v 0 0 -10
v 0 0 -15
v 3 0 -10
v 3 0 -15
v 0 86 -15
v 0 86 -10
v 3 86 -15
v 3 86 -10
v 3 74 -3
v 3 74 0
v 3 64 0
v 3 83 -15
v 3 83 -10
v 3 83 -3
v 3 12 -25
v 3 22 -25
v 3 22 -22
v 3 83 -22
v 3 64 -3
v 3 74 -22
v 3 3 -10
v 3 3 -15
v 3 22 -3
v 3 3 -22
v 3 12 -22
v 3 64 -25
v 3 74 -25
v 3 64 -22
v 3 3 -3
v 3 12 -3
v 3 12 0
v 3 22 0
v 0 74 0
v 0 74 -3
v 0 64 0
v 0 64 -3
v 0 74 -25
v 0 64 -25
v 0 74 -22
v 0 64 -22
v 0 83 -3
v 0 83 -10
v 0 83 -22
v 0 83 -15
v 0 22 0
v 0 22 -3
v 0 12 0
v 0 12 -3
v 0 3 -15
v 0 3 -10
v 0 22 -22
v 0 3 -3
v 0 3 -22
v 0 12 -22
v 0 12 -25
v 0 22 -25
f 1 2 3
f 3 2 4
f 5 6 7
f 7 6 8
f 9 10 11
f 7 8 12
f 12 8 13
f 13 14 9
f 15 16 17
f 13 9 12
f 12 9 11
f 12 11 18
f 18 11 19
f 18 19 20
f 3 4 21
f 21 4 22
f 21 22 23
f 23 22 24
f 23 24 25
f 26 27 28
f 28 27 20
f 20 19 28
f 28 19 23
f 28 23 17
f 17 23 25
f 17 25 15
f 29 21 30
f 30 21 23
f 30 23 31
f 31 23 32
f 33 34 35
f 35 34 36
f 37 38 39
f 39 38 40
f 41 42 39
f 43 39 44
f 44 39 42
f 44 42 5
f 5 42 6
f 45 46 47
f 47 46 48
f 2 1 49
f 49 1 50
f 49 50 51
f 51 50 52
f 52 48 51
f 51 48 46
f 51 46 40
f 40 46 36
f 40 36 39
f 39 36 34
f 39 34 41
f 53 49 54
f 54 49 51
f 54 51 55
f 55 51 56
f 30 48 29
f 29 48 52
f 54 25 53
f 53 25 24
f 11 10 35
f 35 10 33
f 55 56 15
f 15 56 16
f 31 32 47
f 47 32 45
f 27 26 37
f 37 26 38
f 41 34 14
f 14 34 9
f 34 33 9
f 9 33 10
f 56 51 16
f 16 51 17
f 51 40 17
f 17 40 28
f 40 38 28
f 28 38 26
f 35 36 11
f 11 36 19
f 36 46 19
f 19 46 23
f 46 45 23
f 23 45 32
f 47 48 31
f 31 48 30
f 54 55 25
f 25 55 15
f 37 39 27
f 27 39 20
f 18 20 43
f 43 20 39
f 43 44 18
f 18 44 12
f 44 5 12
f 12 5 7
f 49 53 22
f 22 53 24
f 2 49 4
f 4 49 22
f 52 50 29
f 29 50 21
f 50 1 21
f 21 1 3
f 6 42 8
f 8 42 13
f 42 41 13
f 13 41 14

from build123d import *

# Parameters (mm, degrees)
SKETCH_1_W          = 25
SKETCH_1_H          = 86
EXTRUDE_2_DEPTH     = 3
SKETCH_4_W          = 3
SKETCH_4_H          = 12
SKETCH_4_H_2        = 42
CUT_EXTRUDE_1_DEPTH = 4
SKETCH_5_W          = 7
SKETCH_5_H          = 3
CUT_EXTRUDE_2_DEPTH = 4


with BuildPart() as part:
    # 스케치1 → 보스-돌출2 (new body)
    with BuildSketch(Plane(origin=(0, 0, 0), x_dir=(0, 0, -1), z_dir=(1, 0, 0))):
        with Locations((12.5, 43)):
            Rectangle(SKETCH_1_W, SKETCH_1_H)
    extrude(amount=EXTRUDE_2_DEPTH)

    # 스케치4 → 컷-돌출1 (cut, through all)
    with BuildSketch(Plane(origin=(3, 0, 0), x_dir=(0, 0, -1), z_dir=(1, 0, 0))):
        with Locations((1.5, 80)):
            Rectangle(SKETCH_4_W, SKETCH_4_H)
        with Locations((23.5, 80)):
            Rectangle(SKETCH_4_W, SKETCH_4_H)
        with Locations((23.5, 6)):
            Rectangle(SKETCH_4_W, SKETCH_4_H)
        with Locations((1.5, 6)):
            Rectangle(SKETCH_4_W, SKETCH_4_H)
        with Locations((1.5, 43)):
            Rectangle(SKETCH_4_W, SKETCH_4_H_2)
        with Locations((23.5, 43)):
            Rectangle(SKETCH_4_W, SKETCH_4_H_2)
    extrude(amount=-CUT_EXTRUDE_1_DEPTH, mode=Mode.SUBTRACT)

    # 스케치5 → 컷-돌출2 (cut, through all)
    with BuildSketch(Plane(origin=(3, 0, 0), x_dir=(0, 0, -1), z_dir=(1, 0, 0))):
        with Locations((6.5, 84.5)):
            Rectangle(SKETCH_5_W, SKETCH_5_H)
        with Locations((18.5, 84.5)):
            Rectangle(SKETCH_5_W, SKETCH_5_H)
        with Locations((6.5, 1.5)):
            Rectangle(SKETCH_5_W, SKETCH_5_H)
        with Locations((18.5, 1.5)):
            Rectangle(SKETCH_5_W, SKETCH_5_H)
    extrude(amount=-CUT_EXTRUDE_2_DEPTH, mode=Mode.SUBTRACT)


solid = part.part
